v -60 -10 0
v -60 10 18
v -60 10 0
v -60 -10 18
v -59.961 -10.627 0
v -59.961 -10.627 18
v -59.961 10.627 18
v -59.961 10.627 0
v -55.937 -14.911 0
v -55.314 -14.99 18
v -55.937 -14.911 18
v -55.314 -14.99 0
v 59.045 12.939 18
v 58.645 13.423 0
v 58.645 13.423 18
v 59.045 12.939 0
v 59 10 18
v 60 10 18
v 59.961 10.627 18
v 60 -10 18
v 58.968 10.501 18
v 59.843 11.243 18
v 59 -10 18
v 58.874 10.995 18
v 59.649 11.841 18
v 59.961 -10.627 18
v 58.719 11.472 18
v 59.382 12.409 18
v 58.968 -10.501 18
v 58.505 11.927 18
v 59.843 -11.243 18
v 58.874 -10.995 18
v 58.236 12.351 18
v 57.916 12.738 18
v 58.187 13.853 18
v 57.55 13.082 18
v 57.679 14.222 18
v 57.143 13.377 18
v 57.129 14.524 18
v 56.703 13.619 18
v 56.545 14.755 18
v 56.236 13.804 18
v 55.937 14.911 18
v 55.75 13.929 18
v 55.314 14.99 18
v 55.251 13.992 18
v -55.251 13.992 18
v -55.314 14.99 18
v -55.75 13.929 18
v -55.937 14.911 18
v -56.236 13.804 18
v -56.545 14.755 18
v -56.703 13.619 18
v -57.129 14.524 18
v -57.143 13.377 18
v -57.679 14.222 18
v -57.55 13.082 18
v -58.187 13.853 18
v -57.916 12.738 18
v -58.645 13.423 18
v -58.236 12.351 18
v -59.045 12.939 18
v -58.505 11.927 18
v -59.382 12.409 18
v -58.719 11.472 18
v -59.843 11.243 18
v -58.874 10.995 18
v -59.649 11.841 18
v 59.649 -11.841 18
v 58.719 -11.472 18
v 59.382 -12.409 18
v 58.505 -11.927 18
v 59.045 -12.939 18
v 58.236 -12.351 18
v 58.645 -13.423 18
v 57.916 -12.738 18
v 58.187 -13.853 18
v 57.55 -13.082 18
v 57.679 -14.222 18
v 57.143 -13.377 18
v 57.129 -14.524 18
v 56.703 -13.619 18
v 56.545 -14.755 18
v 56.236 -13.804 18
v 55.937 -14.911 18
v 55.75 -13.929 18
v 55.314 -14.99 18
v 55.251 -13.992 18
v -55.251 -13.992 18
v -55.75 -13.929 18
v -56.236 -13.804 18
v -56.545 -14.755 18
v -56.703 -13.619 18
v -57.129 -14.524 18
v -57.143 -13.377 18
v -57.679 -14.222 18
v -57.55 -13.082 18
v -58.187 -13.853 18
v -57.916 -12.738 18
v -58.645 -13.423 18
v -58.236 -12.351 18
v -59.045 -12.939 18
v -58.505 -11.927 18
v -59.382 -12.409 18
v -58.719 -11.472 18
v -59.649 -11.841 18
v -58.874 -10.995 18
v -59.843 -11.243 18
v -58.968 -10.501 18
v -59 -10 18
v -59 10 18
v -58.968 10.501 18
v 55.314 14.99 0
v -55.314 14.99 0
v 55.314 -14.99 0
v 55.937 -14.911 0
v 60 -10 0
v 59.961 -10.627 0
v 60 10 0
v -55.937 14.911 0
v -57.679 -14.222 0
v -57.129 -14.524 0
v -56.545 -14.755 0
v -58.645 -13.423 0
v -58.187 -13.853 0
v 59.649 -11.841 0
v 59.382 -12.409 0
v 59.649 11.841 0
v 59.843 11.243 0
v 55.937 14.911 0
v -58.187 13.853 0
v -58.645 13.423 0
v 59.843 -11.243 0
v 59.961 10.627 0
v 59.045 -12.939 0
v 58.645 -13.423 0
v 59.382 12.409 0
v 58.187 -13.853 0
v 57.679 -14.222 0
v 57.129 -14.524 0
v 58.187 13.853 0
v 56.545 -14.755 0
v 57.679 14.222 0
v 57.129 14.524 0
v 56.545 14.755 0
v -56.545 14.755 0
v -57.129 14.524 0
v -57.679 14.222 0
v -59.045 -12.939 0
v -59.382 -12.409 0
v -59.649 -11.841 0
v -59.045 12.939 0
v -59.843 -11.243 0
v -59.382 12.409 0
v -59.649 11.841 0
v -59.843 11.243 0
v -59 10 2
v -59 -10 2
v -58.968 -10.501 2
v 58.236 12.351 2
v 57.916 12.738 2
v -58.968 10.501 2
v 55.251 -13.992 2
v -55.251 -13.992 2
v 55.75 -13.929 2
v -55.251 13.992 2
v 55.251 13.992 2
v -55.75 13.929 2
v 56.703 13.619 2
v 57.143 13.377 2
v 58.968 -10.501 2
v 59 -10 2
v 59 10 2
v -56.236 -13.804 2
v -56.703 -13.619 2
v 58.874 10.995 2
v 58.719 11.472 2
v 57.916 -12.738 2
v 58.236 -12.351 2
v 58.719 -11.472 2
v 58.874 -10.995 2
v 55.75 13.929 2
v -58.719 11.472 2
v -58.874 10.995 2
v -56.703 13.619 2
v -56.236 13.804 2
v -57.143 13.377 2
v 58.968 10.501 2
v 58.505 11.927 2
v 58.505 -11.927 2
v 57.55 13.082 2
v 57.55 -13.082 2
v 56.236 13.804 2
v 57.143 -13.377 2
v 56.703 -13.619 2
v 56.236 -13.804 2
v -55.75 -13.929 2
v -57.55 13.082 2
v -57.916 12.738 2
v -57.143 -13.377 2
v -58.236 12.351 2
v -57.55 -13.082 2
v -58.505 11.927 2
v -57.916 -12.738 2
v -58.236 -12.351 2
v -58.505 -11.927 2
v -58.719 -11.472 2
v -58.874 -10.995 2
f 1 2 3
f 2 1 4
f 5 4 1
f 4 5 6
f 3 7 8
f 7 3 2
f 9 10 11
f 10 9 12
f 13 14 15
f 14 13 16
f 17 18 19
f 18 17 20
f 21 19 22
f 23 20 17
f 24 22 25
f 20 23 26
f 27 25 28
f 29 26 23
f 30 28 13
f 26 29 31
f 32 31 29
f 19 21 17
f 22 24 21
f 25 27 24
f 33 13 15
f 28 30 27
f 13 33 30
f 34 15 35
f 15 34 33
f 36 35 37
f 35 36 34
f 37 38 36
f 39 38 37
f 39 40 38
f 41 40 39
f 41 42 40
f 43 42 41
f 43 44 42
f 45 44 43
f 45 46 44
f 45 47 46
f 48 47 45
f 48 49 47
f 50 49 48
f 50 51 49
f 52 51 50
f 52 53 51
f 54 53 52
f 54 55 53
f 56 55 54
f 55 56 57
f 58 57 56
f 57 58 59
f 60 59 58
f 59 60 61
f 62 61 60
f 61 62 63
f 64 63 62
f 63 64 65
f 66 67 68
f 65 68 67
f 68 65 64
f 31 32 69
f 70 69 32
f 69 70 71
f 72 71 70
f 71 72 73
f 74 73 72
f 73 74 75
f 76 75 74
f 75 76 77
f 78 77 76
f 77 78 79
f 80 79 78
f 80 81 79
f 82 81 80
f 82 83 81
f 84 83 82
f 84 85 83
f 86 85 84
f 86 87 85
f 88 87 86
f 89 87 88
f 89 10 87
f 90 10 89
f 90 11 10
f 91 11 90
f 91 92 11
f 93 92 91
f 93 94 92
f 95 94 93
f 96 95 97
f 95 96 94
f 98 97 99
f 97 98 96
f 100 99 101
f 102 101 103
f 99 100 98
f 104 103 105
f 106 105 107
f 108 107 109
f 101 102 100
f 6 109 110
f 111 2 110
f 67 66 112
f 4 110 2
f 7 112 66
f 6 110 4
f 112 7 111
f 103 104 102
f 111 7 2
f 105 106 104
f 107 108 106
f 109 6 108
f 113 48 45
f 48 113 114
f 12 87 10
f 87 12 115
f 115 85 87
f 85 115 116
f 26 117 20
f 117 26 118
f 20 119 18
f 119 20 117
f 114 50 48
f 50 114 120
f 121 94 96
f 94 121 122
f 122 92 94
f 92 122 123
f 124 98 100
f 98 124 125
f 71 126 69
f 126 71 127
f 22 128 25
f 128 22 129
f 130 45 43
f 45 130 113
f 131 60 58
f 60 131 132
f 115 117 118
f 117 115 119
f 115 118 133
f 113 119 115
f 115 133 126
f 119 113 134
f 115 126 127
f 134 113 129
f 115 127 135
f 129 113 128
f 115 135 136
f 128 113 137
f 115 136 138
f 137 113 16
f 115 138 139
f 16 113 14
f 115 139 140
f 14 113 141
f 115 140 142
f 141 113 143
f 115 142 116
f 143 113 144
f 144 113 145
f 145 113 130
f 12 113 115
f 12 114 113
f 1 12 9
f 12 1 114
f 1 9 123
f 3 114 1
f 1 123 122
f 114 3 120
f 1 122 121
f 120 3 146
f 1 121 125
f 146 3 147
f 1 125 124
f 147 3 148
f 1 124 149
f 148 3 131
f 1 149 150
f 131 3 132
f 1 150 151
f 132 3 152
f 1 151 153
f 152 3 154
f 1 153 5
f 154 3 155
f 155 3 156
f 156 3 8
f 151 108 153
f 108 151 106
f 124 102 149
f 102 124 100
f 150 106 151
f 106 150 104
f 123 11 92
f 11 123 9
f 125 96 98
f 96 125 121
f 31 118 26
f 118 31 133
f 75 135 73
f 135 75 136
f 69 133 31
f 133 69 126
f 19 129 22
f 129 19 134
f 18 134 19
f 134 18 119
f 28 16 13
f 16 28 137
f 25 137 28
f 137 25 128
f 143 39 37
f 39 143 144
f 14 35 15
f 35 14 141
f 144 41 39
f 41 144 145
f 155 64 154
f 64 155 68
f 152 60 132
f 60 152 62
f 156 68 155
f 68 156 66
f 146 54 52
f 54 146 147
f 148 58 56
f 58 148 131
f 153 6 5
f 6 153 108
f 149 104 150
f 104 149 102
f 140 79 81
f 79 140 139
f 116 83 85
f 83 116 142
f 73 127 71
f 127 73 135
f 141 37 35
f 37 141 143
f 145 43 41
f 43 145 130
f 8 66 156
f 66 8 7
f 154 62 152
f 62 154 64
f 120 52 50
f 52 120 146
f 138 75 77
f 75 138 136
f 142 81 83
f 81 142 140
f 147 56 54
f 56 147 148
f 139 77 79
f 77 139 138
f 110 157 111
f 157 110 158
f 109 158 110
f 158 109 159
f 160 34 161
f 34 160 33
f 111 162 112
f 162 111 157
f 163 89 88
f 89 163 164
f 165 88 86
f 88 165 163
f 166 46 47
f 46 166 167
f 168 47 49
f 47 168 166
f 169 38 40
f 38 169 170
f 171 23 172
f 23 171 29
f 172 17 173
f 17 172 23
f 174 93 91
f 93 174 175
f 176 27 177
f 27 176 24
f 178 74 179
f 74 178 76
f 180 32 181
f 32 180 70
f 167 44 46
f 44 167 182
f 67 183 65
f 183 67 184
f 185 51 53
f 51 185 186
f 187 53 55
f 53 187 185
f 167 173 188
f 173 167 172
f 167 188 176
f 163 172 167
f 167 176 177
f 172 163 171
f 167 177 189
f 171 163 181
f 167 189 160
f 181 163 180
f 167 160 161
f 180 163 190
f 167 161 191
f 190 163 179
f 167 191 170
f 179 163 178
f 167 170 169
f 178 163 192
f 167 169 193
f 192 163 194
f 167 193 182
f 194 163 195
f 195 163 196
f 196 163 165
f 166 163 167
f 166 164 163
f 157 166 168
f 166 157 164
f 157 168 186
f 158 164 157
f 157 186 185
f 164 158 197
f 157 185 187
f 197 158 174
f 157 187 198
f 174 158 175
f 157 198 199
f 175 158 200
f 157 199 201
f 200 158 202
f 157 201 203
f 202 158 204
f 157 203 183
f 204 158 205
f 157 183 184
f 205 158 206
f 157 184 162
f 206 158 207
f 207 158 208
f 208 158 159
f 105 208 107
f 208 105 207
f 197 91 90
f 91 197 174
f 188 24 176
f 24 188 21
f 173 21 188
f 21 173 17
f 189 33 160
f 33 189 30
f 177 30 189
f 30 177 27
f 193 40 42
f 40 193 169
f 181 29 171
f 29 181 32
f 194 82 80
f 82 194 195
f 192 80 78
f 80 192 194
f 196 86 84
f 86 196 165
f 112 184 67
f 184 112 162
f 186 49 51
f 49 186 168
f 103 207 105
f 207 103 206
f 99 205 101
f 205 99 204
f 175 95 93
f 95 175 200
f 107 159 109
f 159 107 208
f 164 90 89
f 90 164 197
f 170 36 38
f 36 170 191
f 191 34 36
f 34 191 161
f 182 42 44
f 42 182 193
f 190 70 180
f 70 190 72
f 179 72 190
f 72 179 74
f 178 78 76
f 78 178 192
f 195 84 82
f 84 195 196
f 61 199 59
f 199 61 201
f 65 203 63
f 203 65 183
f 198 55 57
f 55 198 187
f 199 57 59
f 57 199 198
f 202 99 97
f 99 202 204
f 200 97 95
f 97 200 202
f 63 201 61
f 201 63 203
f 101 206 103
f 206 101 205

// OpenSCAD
$fn = 50;


difference() {
	union() {
		hull() {
			translate(v = [-55.0000000000, 10.0000000000, 0]) {
				cylinder(h = 18, r = 5);
			}
			translate(v = [55.0000000000, 10.0000000000, 0]) {
				cylinder(h = 18, r = 5);
			}
			translate(v = [-55.0000000000, -10.0000000000, 0]) {
				cylinder(h = 18, r = 5);
			}
			translate(v = [55.0000000000, -10.0000000000, 0]) {
				cylinder(h = 18, r = 5);
			}
		}
	}
	union() {
		translate(v = [0, 0, 2]) {
			hull() {
				translate(v = [-55.0000000000, 10.0000000000, 0]) {
					cylinder(h = 16, r = 4);
				}
				translate(v = [55.0000000000, 10.0000000000, 0]) {
					cylinder(h = 16, r = 4);
				}
				translate(v = [-55.0000000000, -10.0000000000, 0]) {
					cylinder(h = 16, r = 4);
				}
				translate(v = [55.0000000000, -10.0000000000, 0]) {
					cylinder(h = 16, r = 4);
				}
			}
		}
	}
}
